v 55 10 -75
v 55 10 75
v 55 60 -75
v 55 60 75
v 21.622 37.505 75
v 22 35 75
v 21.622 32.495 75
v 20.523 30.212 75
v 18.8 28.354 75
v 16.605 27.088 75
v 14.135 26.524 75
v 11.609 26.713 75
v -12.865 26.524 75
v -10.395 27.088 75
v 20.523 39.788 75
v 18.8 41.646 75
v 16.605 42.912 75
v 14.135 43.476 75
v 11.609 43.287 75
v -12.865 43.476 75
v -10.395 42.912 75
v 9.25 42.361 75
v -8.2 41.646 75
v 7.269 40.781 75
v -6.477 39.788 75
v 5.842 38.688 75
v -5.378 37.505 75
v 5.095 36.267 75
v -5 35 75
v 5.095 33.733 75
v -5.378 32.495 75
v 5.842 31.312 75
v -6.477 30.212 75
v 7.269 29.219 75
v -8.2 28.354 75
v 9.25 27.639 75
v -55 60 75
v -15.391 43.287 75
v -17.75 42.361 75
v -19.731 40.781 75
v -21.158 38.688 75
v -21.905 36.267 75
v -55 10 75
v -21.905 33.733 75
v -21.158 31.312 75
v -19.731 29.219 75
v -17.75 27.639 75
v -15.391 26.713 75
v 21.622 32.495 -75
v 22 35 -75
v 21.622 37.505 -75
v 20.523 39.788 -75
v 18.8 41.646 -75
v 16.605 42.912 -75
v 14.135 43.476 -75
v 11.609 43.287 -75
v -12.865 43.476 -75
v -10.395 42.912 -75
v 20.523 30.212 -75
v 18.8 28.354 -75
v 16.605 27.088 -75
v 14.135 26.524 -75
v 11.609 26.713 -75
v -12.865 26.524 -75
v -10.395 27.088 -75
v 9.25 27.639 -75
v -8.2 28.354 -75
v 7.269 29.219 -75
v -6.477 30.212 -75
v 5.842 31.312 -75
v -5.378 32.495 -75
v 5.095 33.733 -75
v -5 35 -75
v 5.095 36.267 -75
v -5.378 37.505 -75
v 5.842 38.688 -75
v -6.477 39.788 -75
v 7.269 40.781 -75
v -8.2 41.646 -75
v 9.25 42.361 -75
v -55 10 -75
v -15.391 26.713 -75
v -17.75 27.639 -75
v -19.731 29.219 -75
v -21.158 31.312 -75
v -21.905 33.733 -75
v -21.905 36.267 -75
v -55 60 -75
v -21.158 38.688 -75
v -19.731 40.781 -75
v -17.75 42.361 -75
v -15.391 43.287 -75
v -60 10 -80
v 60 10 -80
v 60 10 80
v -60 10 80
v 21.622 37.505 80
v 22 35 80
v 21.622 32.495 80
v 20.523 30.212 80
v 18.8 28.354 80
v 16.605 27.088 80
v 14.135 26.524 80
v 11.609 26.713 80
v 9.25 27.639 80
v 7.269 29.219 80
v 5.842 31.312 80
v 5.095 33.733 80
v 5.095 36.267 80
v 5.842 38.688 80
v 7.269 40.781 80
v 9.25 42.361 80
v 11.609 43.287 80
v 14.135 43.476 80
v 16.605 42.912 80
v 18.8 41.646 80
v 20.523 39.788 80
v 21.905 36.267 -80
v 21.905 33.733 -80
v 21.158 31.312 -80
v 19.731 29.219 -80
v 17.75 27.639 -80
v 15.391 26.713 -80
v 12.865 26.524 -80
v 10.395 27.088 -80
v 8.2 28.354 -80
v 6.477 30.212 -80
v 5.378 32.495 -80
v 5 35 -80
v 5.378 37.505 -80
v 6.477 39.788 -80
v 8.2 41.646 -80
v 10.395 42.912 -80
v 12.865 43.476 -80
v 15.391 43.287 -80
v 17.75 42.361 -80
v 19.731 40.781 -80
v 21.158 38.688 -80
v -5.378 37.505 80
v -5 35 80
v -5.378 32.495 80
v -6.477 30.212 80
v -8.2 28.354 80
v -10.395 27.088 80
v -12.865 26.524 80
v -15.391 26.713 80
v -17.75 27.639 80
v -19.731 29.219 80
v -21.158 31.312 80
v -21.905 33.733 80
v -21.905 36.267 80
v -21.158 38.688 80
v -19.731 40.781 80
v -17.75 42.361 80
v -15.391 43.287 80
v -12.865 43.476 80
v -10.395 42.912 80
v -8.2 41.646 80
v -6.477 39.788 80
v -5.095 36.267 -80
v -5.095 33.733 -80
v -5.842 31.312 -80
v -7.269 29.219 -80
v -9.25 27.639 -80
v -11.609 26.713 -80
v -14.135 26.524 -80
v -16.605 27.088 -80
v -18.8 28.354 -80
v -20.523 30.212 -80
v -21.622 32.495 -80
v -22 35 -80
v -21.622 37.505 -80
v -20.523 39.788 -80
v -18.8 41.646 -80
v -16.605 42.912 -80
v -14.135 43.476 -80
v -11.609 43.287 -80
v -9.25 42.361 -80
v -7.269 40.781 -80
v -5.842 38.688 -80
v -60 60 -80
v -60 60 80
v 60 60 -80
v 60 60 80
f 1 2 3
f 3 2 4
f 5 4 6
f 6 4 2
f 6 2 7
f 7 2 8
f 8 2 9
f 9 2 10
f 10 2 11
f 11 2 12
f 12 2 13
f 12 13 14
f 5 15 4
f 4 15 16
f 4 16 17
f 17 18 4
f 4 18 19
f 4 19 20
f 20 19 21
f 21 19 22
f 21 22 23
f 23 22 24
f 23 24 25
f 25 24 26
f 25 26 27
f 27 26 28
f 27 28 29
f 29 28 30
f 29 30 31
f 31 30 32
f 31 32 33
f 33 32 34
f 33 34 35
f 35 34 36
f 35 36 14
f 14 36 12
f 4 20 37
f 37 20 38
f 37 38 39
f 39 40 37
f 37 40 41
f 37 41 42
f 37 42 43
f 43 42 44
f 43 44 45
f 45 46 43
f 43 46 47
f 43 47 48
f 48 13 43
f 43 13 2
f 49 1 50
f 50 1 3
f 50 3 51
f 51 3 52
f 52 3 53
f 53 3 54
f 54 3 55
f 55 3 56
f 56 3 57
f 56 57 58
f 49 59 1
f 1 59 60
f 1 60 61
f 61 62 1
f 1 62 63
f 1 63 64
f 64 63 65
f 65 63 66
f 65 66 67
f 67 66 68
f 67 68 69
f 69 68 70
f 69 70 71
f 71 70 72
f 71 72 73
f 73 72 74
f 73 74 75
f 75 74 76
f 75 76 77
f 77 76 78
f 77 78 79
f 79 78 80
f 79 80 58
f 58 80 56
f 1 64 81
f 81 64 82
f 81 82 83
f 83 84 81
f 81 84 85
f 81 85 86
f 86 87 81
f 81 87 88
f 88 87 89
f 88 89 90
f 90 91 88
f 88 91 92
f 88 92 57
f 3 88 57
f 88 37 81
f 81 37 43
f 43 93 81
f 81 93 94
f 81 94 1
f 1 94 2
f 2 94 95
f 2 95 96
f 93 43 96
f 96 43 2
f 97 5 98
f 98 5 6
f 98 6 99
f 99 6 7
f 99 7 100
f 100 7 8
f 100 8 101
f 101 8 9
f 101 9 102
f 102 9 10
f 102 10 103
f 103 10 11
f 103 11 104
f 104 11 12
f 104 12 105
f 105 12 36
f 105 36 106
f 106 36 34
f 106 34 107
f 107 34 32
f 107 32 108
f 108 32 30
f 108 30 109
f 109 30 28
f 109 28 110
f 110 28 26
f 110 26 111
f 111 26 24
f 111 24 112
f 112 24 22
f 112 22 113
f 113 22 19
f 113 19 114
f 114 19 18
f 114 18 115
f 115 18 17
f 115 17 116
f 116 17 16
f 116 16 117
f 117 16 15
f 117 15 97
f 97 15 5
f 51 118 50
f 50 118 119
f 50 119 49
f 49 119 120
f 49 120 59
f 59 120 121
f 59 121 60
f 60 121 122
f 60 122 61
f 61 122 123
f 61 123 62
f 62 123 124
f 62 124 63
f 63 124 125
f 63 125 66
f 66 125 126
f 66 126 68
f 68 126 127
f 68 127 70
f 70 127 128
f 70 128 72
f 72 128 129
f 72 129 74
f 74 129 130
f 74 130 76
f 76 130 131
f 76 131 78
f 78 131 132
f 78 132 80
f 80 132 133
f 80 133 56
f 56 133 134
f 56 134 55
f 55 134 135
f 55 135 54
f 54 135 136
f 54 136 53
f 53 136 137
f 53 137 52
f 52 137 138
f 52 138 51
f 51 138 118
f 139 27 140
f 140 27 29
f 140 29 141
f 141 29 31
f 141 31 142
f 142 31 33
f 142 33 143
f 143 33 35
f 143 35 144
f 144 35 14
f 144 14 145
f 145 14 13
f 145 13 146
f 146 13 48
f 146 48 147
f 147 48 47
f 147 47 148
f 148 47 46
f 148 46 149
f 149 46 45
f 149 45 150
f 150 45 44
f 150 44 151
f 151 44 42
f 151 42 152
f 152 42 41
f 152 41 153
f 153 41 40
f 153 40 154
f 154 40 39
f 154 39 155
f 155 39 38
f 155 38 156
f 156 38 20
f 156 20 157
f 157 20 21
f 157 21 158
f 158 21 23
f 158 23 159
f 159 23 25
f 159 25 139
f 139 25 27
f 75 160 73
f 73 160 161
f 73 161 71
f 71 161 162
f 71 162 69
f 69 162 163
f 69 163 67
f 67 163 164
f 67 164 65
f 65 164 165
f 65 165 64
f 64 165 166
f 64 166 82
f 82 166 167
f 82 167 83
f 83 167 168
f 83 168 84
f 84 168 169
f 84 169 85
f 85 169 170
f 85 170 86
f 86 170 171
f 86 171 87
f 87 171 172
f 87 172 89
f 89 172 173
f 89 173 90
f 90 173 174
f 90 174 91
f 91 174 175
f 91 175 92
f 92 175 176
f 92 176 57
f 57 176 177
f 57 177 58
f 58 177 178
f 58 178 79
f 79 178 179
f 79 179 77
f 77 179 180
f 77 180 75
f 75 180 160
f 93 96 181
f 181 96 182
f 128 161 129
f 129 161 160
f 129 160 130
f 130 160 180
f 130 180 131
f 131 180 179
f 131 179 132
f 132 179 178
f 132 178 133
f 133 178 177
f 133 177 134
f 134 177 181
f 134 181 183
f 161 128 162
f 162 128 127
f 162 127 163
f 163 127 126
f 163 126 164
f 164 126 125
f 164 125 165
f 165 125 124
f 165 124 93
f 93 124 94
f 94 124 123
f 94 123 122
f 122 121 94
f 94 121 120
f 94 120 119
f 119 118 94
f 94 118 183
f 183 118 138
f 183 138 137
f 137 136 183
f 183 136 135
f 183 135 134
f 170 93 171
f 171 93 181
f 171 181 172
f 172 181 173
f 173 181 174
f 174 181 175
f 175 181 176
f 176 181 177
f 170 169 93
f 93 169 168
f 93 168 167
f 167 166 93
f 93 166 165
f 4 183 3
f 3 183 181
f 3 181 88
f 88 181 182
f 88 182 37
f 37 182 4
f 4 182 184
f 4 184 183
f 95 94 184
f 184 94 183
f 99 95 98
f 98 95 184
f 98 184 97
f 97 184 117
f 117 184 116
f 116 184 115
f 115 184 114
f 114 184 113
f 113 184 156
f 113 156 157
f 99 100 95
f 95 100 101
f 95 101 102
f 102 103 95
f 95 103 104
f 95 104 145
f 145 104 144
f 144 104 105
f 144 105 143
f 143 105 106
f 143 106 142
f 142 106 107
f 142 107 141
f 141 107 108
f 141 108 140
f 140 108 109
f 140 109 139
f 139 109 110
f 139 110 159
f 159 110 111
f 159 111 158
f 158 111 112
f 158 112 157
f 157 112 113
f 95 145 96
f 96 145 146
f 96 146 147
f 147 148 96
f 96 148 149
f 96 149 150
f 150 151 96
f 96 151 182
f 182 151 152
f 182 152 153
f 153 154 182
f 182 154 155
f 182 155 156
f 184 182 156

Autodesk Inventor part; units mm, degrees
ref_plane "YZ Plane" through (0, 0, 0) normal (1, 0, 0) x (0, 1, 0)
ref_plane "XZ Plane" through (0, 0, 0) normal (0, 1, 0) x (-1, 0, 0)
ref_plane "XY Plane" through (0, 0, 0) normal (0, 0, 1) x (1, 0, 0)
sketch "스케치1" plane through (0, 0, 0) normal (0, 1, 0) x (-1, 0, 0)
  line L0 (60, 80) -> (-60, 80)
  line L1 (-60, 80) -> (-60, -80)
  line L2 (-60, -80) -> (60, -80)
  line L3 (60, -80) -> (60, 80)
  line L4 (60, 80) -> (-60, -80) construction
  line L5 (-60, 80) -> (60, -80) construction
  point P0 (0, 0)
  dimension "d0" = 120
  dimension "d1" = 160
extrude "돌출1" add sketch "스케치1" along normal blind 60
sketch "스케치2" plane through (0, 60, 0) normal (0, 1, 0) x (1, 0, 0)
  line L0 (60, -80) -> (60, 80) projected
  line L1 (60, 80) -> (-60, 80) projected
  line L2 (55, 102.1646) -> (-55, 102.1646)
  line L3 (-55, 102.1646) -> (-55, -89.711)
  line L4 (-55, -89.711) -> (55, -89.711)
  line L5 (55, -89.711) -> (55, 102.1646)
  line L6 (-60, 80) -> (-60, -80) projected
  point P0 (0, 0)
  point P1 (55, 80)
  point P2 (-55, 80)
  dimension "d6" = 5
  dimension "d7" = 5
extrude "돌출2" cut sketch "스케치2" against normal blind 40 contours L5 L4 L3 L1
sketch "스케치12" plane through (60, 0, -80) normal (0, 0, -1) x (-1, 0, 0)
  line L0 (-34.8463, 10) -> (156.2634, 10)
  line L1 (156.2634, 10) -> (156.2634, -36.9465)
  line L2 (156.2634, -36.9465) -> (-34.8463, -36.9465)
  line L3 (-34.8463, -36.9465) -> (-34.8463, 10)
  line L4 (0, 0) -> (120, 0) projected
  point P0 (60, 0)
  dimension "d85" = 10
extrude "돌출10" cut sketch "스케치12" against normal through all
sketch "스케치13" plane through (-55, 20, 80) normal (0, 0, 1) x (1, 0, 0)
  line L0 (0, 40) -> (0, 0) projected
  line L1 (0, 0) -> (110, 0) projected
  line L2 (0, 40) -> (110, 40)
  line L3 (110, 40) -> (110, 0)
  line L4 (110, 0) -> (0, 0)
  line L5 (0, 0) -> (0, 40)
  point P0 (55, -20)
extrude "돌출11" add sketch "스케치13" against normal blind 5
sketch "스케치14" plane through (55, 20, -80) normal (0, 0, -1) x (-1, 0, 0)
  line L0 (0, 0) -> (0, 40) projected
  line L1 (110, 0) -> (0, 0) projected
  line L2 (0, 40) -> (110, 40)
  line L3 (110, 40) -> (110, 0)
  line L4 (110, 0) -> (0, 0)
  line L5 (0, 0) -> (0, 40)
  point P0 (55, -20)
extrude "돌출12" add sketch "스케치14" against normal blind 5
sketch "스케치15" plane through (60, 60, -80) normal (0, 0, -1) x (-1, 0, 0)
  point P0 (60, -60)
sketch "스케치16" plane through (60, 60, -80) normal (0, 0, -1) x (-1, 0, 0)
  point P0 (60, -60)
sketch "스케치17" plane through (0, 20, 0) normal (0, 1, 0) x (1, 0, 0)
  line L0 (7, 27) -> (45, 27)
  line L1 (45, 27) -> (45, 65)
  line L2 (45, 65) -> (7, 65)
  line L3 (7, 65) -> (7, 27)
  line L4 (55, 75) -> (55, -75) projected
  line L5 (55, 75) -> (-55, 75) projected
  circle A0 centre (7, 27) radius 1.6
  circle A1 centre (7, 65) radius 1.6
  circle A2 centre (45, 65) radius 1.6
  circle A3 centre (45, 27) radius 1.6
  line L6 (-47.9371, 14.7215) -> (-7.9371, 14.7215)
  line L7 (-7.9371, 14.7215) -> (-7.9371, 64.7215)
  line L8 (-7.9371, 64.7215) -> (-47.9371, 64.7215)
  line L9 (-47.9371, 64.7215) -> (-47.9371, 14.7215)
  point P0 (0, 0)
  dimension "d92" = 38
  dimension "d93" = 38
  dimension "d95" = 10
  dimension "d96" = 10
  dimension "d97" = 3.2
  dimension "d98" = 3.2
  dimension "d99" = 3.2
  dimension "d100" = 3.2
  dimension "d113" = 40
  dimension "d114" = 50
extrude "돌출13" cut sketch "스케치17" against normal through all contours L3 A0 L0 | L0 A0 L3 | A3 L1 L0 | L0 L1 A3 | A1 L2 L3 | L3 L2 A1 | A2 L2 L1 | L1 L2 A2
sketch "스케치19" plane through (60, 60, -80) normal (0, 0, -1) x (-1, 0, 0)
  line L0 (5, -40) -> (115, -40) projected
  circle A0 centre (46.5, -25) radius 8.5
  circle A1 centre (73.5, -25) radius 8.5
  line L1 (5, 0) -> (5, -40) projected
  line L2 (115, -40) -> (115, 0) projected
  point P0 (60, -60)
  dimension "d105" = 27
  dimension "d106" = 41.5
  dimension "d107" = 17
  dimension "d108" = 17
  dimension "d109" = 15
  dimension "d110" = 15
extrude "돌출14" cut sketch "스케치19" against normal through all
sketch "스케치21" plane through (0, 20, 0) normal (0, 1, 0) x (1, 0, 0)
  circle A0 centre (5.4243, 8.1678) radius 7.5
  line L0 (-49.3888, 17.2731) -> (-9.3888, 17.2731)
  line L1 (-9.3888, 17.2731) -> (-9.3888, 67.2731)
  line L2 (-9.3888, 67.2731) -> (-49.3888, 67.2731)
  line L3 (-49.3888, 67.2731) -> (-49.3888, 17.2731)
  point P0 (0, 0)
  dimension "d117" = 15
  dimension "d118" = 50
  dimension "d119" = 40
extrude "돌출15" cut sketch "스케치21" against normal through all contours A0
sketch "스케치23" plane through (0, 20, 0) normal (0, 1, 0) x (1, 0, 0)
  line L0 (-48.6, -65) -> (20, -65)
  line L1 (20, -65) -> (20, -11.6)
  line L2 (20, -11.6) -> (-48.6, -11.6)
  line L3 (-48.6, -11.6) -> (-48.6, -65)
  line L4 (55, 75) -> (55, -75) projected
  line L5 (-55, -75) -> (55, -75) projected
  circle A0 centre (4.7, -62.45) radius 1.6
  circle A1 centre (6.03, -14.15) radius 1.6
  circle A2 centre (-46.05, -47.16) radius 1.6
  circle A3 centre (-46.05, -19.23) radius 1.6
  point P0 (0, 0)
  dimension "d123" = 68.6
  dimension "d124" = 53.4
  dimension "d125" = 35
  dimension "d126" = 10
  dimension "d127" = 3.2
  dimension "d128" = 15.3
  dimension "d129" = 2.55
  dimension "d130" = 3.2
  dimension "d131" = 13.97
  dimension "d132" = 2.55
  dimension "d133" = 3.2
  dimension "d134" = 35.56
  dimension "d135" = 3.2
  dimension "d136" = 2.55
  dimension "d137" = 2.55
  dimension "d138" = 7.63
extrude "돌출16" cut sketch "스케치23" against normal through all contours A0 | A1 | A2 | A3
sketch "스케치24" plane through (0, 20, 0) normal (0, 1, 0) x (1, 0, 0)
  line L0 (-55, -75) -> (55, -75) projected
  line L1 (55, 75) -> (55, -75) projected
  line L2 (-55, -75) -> (55, -75)
  line L3 (55, -75) -> (55, 75)
  line L4 (55, 75) -> (-55, 75)
  line L5 (-55, 75) -> (-55, -75)
  point P0 (0, 0)
extrude "돌출17" cut sketch "스케치24" against normal through all
properties part number "본체 겉면"
